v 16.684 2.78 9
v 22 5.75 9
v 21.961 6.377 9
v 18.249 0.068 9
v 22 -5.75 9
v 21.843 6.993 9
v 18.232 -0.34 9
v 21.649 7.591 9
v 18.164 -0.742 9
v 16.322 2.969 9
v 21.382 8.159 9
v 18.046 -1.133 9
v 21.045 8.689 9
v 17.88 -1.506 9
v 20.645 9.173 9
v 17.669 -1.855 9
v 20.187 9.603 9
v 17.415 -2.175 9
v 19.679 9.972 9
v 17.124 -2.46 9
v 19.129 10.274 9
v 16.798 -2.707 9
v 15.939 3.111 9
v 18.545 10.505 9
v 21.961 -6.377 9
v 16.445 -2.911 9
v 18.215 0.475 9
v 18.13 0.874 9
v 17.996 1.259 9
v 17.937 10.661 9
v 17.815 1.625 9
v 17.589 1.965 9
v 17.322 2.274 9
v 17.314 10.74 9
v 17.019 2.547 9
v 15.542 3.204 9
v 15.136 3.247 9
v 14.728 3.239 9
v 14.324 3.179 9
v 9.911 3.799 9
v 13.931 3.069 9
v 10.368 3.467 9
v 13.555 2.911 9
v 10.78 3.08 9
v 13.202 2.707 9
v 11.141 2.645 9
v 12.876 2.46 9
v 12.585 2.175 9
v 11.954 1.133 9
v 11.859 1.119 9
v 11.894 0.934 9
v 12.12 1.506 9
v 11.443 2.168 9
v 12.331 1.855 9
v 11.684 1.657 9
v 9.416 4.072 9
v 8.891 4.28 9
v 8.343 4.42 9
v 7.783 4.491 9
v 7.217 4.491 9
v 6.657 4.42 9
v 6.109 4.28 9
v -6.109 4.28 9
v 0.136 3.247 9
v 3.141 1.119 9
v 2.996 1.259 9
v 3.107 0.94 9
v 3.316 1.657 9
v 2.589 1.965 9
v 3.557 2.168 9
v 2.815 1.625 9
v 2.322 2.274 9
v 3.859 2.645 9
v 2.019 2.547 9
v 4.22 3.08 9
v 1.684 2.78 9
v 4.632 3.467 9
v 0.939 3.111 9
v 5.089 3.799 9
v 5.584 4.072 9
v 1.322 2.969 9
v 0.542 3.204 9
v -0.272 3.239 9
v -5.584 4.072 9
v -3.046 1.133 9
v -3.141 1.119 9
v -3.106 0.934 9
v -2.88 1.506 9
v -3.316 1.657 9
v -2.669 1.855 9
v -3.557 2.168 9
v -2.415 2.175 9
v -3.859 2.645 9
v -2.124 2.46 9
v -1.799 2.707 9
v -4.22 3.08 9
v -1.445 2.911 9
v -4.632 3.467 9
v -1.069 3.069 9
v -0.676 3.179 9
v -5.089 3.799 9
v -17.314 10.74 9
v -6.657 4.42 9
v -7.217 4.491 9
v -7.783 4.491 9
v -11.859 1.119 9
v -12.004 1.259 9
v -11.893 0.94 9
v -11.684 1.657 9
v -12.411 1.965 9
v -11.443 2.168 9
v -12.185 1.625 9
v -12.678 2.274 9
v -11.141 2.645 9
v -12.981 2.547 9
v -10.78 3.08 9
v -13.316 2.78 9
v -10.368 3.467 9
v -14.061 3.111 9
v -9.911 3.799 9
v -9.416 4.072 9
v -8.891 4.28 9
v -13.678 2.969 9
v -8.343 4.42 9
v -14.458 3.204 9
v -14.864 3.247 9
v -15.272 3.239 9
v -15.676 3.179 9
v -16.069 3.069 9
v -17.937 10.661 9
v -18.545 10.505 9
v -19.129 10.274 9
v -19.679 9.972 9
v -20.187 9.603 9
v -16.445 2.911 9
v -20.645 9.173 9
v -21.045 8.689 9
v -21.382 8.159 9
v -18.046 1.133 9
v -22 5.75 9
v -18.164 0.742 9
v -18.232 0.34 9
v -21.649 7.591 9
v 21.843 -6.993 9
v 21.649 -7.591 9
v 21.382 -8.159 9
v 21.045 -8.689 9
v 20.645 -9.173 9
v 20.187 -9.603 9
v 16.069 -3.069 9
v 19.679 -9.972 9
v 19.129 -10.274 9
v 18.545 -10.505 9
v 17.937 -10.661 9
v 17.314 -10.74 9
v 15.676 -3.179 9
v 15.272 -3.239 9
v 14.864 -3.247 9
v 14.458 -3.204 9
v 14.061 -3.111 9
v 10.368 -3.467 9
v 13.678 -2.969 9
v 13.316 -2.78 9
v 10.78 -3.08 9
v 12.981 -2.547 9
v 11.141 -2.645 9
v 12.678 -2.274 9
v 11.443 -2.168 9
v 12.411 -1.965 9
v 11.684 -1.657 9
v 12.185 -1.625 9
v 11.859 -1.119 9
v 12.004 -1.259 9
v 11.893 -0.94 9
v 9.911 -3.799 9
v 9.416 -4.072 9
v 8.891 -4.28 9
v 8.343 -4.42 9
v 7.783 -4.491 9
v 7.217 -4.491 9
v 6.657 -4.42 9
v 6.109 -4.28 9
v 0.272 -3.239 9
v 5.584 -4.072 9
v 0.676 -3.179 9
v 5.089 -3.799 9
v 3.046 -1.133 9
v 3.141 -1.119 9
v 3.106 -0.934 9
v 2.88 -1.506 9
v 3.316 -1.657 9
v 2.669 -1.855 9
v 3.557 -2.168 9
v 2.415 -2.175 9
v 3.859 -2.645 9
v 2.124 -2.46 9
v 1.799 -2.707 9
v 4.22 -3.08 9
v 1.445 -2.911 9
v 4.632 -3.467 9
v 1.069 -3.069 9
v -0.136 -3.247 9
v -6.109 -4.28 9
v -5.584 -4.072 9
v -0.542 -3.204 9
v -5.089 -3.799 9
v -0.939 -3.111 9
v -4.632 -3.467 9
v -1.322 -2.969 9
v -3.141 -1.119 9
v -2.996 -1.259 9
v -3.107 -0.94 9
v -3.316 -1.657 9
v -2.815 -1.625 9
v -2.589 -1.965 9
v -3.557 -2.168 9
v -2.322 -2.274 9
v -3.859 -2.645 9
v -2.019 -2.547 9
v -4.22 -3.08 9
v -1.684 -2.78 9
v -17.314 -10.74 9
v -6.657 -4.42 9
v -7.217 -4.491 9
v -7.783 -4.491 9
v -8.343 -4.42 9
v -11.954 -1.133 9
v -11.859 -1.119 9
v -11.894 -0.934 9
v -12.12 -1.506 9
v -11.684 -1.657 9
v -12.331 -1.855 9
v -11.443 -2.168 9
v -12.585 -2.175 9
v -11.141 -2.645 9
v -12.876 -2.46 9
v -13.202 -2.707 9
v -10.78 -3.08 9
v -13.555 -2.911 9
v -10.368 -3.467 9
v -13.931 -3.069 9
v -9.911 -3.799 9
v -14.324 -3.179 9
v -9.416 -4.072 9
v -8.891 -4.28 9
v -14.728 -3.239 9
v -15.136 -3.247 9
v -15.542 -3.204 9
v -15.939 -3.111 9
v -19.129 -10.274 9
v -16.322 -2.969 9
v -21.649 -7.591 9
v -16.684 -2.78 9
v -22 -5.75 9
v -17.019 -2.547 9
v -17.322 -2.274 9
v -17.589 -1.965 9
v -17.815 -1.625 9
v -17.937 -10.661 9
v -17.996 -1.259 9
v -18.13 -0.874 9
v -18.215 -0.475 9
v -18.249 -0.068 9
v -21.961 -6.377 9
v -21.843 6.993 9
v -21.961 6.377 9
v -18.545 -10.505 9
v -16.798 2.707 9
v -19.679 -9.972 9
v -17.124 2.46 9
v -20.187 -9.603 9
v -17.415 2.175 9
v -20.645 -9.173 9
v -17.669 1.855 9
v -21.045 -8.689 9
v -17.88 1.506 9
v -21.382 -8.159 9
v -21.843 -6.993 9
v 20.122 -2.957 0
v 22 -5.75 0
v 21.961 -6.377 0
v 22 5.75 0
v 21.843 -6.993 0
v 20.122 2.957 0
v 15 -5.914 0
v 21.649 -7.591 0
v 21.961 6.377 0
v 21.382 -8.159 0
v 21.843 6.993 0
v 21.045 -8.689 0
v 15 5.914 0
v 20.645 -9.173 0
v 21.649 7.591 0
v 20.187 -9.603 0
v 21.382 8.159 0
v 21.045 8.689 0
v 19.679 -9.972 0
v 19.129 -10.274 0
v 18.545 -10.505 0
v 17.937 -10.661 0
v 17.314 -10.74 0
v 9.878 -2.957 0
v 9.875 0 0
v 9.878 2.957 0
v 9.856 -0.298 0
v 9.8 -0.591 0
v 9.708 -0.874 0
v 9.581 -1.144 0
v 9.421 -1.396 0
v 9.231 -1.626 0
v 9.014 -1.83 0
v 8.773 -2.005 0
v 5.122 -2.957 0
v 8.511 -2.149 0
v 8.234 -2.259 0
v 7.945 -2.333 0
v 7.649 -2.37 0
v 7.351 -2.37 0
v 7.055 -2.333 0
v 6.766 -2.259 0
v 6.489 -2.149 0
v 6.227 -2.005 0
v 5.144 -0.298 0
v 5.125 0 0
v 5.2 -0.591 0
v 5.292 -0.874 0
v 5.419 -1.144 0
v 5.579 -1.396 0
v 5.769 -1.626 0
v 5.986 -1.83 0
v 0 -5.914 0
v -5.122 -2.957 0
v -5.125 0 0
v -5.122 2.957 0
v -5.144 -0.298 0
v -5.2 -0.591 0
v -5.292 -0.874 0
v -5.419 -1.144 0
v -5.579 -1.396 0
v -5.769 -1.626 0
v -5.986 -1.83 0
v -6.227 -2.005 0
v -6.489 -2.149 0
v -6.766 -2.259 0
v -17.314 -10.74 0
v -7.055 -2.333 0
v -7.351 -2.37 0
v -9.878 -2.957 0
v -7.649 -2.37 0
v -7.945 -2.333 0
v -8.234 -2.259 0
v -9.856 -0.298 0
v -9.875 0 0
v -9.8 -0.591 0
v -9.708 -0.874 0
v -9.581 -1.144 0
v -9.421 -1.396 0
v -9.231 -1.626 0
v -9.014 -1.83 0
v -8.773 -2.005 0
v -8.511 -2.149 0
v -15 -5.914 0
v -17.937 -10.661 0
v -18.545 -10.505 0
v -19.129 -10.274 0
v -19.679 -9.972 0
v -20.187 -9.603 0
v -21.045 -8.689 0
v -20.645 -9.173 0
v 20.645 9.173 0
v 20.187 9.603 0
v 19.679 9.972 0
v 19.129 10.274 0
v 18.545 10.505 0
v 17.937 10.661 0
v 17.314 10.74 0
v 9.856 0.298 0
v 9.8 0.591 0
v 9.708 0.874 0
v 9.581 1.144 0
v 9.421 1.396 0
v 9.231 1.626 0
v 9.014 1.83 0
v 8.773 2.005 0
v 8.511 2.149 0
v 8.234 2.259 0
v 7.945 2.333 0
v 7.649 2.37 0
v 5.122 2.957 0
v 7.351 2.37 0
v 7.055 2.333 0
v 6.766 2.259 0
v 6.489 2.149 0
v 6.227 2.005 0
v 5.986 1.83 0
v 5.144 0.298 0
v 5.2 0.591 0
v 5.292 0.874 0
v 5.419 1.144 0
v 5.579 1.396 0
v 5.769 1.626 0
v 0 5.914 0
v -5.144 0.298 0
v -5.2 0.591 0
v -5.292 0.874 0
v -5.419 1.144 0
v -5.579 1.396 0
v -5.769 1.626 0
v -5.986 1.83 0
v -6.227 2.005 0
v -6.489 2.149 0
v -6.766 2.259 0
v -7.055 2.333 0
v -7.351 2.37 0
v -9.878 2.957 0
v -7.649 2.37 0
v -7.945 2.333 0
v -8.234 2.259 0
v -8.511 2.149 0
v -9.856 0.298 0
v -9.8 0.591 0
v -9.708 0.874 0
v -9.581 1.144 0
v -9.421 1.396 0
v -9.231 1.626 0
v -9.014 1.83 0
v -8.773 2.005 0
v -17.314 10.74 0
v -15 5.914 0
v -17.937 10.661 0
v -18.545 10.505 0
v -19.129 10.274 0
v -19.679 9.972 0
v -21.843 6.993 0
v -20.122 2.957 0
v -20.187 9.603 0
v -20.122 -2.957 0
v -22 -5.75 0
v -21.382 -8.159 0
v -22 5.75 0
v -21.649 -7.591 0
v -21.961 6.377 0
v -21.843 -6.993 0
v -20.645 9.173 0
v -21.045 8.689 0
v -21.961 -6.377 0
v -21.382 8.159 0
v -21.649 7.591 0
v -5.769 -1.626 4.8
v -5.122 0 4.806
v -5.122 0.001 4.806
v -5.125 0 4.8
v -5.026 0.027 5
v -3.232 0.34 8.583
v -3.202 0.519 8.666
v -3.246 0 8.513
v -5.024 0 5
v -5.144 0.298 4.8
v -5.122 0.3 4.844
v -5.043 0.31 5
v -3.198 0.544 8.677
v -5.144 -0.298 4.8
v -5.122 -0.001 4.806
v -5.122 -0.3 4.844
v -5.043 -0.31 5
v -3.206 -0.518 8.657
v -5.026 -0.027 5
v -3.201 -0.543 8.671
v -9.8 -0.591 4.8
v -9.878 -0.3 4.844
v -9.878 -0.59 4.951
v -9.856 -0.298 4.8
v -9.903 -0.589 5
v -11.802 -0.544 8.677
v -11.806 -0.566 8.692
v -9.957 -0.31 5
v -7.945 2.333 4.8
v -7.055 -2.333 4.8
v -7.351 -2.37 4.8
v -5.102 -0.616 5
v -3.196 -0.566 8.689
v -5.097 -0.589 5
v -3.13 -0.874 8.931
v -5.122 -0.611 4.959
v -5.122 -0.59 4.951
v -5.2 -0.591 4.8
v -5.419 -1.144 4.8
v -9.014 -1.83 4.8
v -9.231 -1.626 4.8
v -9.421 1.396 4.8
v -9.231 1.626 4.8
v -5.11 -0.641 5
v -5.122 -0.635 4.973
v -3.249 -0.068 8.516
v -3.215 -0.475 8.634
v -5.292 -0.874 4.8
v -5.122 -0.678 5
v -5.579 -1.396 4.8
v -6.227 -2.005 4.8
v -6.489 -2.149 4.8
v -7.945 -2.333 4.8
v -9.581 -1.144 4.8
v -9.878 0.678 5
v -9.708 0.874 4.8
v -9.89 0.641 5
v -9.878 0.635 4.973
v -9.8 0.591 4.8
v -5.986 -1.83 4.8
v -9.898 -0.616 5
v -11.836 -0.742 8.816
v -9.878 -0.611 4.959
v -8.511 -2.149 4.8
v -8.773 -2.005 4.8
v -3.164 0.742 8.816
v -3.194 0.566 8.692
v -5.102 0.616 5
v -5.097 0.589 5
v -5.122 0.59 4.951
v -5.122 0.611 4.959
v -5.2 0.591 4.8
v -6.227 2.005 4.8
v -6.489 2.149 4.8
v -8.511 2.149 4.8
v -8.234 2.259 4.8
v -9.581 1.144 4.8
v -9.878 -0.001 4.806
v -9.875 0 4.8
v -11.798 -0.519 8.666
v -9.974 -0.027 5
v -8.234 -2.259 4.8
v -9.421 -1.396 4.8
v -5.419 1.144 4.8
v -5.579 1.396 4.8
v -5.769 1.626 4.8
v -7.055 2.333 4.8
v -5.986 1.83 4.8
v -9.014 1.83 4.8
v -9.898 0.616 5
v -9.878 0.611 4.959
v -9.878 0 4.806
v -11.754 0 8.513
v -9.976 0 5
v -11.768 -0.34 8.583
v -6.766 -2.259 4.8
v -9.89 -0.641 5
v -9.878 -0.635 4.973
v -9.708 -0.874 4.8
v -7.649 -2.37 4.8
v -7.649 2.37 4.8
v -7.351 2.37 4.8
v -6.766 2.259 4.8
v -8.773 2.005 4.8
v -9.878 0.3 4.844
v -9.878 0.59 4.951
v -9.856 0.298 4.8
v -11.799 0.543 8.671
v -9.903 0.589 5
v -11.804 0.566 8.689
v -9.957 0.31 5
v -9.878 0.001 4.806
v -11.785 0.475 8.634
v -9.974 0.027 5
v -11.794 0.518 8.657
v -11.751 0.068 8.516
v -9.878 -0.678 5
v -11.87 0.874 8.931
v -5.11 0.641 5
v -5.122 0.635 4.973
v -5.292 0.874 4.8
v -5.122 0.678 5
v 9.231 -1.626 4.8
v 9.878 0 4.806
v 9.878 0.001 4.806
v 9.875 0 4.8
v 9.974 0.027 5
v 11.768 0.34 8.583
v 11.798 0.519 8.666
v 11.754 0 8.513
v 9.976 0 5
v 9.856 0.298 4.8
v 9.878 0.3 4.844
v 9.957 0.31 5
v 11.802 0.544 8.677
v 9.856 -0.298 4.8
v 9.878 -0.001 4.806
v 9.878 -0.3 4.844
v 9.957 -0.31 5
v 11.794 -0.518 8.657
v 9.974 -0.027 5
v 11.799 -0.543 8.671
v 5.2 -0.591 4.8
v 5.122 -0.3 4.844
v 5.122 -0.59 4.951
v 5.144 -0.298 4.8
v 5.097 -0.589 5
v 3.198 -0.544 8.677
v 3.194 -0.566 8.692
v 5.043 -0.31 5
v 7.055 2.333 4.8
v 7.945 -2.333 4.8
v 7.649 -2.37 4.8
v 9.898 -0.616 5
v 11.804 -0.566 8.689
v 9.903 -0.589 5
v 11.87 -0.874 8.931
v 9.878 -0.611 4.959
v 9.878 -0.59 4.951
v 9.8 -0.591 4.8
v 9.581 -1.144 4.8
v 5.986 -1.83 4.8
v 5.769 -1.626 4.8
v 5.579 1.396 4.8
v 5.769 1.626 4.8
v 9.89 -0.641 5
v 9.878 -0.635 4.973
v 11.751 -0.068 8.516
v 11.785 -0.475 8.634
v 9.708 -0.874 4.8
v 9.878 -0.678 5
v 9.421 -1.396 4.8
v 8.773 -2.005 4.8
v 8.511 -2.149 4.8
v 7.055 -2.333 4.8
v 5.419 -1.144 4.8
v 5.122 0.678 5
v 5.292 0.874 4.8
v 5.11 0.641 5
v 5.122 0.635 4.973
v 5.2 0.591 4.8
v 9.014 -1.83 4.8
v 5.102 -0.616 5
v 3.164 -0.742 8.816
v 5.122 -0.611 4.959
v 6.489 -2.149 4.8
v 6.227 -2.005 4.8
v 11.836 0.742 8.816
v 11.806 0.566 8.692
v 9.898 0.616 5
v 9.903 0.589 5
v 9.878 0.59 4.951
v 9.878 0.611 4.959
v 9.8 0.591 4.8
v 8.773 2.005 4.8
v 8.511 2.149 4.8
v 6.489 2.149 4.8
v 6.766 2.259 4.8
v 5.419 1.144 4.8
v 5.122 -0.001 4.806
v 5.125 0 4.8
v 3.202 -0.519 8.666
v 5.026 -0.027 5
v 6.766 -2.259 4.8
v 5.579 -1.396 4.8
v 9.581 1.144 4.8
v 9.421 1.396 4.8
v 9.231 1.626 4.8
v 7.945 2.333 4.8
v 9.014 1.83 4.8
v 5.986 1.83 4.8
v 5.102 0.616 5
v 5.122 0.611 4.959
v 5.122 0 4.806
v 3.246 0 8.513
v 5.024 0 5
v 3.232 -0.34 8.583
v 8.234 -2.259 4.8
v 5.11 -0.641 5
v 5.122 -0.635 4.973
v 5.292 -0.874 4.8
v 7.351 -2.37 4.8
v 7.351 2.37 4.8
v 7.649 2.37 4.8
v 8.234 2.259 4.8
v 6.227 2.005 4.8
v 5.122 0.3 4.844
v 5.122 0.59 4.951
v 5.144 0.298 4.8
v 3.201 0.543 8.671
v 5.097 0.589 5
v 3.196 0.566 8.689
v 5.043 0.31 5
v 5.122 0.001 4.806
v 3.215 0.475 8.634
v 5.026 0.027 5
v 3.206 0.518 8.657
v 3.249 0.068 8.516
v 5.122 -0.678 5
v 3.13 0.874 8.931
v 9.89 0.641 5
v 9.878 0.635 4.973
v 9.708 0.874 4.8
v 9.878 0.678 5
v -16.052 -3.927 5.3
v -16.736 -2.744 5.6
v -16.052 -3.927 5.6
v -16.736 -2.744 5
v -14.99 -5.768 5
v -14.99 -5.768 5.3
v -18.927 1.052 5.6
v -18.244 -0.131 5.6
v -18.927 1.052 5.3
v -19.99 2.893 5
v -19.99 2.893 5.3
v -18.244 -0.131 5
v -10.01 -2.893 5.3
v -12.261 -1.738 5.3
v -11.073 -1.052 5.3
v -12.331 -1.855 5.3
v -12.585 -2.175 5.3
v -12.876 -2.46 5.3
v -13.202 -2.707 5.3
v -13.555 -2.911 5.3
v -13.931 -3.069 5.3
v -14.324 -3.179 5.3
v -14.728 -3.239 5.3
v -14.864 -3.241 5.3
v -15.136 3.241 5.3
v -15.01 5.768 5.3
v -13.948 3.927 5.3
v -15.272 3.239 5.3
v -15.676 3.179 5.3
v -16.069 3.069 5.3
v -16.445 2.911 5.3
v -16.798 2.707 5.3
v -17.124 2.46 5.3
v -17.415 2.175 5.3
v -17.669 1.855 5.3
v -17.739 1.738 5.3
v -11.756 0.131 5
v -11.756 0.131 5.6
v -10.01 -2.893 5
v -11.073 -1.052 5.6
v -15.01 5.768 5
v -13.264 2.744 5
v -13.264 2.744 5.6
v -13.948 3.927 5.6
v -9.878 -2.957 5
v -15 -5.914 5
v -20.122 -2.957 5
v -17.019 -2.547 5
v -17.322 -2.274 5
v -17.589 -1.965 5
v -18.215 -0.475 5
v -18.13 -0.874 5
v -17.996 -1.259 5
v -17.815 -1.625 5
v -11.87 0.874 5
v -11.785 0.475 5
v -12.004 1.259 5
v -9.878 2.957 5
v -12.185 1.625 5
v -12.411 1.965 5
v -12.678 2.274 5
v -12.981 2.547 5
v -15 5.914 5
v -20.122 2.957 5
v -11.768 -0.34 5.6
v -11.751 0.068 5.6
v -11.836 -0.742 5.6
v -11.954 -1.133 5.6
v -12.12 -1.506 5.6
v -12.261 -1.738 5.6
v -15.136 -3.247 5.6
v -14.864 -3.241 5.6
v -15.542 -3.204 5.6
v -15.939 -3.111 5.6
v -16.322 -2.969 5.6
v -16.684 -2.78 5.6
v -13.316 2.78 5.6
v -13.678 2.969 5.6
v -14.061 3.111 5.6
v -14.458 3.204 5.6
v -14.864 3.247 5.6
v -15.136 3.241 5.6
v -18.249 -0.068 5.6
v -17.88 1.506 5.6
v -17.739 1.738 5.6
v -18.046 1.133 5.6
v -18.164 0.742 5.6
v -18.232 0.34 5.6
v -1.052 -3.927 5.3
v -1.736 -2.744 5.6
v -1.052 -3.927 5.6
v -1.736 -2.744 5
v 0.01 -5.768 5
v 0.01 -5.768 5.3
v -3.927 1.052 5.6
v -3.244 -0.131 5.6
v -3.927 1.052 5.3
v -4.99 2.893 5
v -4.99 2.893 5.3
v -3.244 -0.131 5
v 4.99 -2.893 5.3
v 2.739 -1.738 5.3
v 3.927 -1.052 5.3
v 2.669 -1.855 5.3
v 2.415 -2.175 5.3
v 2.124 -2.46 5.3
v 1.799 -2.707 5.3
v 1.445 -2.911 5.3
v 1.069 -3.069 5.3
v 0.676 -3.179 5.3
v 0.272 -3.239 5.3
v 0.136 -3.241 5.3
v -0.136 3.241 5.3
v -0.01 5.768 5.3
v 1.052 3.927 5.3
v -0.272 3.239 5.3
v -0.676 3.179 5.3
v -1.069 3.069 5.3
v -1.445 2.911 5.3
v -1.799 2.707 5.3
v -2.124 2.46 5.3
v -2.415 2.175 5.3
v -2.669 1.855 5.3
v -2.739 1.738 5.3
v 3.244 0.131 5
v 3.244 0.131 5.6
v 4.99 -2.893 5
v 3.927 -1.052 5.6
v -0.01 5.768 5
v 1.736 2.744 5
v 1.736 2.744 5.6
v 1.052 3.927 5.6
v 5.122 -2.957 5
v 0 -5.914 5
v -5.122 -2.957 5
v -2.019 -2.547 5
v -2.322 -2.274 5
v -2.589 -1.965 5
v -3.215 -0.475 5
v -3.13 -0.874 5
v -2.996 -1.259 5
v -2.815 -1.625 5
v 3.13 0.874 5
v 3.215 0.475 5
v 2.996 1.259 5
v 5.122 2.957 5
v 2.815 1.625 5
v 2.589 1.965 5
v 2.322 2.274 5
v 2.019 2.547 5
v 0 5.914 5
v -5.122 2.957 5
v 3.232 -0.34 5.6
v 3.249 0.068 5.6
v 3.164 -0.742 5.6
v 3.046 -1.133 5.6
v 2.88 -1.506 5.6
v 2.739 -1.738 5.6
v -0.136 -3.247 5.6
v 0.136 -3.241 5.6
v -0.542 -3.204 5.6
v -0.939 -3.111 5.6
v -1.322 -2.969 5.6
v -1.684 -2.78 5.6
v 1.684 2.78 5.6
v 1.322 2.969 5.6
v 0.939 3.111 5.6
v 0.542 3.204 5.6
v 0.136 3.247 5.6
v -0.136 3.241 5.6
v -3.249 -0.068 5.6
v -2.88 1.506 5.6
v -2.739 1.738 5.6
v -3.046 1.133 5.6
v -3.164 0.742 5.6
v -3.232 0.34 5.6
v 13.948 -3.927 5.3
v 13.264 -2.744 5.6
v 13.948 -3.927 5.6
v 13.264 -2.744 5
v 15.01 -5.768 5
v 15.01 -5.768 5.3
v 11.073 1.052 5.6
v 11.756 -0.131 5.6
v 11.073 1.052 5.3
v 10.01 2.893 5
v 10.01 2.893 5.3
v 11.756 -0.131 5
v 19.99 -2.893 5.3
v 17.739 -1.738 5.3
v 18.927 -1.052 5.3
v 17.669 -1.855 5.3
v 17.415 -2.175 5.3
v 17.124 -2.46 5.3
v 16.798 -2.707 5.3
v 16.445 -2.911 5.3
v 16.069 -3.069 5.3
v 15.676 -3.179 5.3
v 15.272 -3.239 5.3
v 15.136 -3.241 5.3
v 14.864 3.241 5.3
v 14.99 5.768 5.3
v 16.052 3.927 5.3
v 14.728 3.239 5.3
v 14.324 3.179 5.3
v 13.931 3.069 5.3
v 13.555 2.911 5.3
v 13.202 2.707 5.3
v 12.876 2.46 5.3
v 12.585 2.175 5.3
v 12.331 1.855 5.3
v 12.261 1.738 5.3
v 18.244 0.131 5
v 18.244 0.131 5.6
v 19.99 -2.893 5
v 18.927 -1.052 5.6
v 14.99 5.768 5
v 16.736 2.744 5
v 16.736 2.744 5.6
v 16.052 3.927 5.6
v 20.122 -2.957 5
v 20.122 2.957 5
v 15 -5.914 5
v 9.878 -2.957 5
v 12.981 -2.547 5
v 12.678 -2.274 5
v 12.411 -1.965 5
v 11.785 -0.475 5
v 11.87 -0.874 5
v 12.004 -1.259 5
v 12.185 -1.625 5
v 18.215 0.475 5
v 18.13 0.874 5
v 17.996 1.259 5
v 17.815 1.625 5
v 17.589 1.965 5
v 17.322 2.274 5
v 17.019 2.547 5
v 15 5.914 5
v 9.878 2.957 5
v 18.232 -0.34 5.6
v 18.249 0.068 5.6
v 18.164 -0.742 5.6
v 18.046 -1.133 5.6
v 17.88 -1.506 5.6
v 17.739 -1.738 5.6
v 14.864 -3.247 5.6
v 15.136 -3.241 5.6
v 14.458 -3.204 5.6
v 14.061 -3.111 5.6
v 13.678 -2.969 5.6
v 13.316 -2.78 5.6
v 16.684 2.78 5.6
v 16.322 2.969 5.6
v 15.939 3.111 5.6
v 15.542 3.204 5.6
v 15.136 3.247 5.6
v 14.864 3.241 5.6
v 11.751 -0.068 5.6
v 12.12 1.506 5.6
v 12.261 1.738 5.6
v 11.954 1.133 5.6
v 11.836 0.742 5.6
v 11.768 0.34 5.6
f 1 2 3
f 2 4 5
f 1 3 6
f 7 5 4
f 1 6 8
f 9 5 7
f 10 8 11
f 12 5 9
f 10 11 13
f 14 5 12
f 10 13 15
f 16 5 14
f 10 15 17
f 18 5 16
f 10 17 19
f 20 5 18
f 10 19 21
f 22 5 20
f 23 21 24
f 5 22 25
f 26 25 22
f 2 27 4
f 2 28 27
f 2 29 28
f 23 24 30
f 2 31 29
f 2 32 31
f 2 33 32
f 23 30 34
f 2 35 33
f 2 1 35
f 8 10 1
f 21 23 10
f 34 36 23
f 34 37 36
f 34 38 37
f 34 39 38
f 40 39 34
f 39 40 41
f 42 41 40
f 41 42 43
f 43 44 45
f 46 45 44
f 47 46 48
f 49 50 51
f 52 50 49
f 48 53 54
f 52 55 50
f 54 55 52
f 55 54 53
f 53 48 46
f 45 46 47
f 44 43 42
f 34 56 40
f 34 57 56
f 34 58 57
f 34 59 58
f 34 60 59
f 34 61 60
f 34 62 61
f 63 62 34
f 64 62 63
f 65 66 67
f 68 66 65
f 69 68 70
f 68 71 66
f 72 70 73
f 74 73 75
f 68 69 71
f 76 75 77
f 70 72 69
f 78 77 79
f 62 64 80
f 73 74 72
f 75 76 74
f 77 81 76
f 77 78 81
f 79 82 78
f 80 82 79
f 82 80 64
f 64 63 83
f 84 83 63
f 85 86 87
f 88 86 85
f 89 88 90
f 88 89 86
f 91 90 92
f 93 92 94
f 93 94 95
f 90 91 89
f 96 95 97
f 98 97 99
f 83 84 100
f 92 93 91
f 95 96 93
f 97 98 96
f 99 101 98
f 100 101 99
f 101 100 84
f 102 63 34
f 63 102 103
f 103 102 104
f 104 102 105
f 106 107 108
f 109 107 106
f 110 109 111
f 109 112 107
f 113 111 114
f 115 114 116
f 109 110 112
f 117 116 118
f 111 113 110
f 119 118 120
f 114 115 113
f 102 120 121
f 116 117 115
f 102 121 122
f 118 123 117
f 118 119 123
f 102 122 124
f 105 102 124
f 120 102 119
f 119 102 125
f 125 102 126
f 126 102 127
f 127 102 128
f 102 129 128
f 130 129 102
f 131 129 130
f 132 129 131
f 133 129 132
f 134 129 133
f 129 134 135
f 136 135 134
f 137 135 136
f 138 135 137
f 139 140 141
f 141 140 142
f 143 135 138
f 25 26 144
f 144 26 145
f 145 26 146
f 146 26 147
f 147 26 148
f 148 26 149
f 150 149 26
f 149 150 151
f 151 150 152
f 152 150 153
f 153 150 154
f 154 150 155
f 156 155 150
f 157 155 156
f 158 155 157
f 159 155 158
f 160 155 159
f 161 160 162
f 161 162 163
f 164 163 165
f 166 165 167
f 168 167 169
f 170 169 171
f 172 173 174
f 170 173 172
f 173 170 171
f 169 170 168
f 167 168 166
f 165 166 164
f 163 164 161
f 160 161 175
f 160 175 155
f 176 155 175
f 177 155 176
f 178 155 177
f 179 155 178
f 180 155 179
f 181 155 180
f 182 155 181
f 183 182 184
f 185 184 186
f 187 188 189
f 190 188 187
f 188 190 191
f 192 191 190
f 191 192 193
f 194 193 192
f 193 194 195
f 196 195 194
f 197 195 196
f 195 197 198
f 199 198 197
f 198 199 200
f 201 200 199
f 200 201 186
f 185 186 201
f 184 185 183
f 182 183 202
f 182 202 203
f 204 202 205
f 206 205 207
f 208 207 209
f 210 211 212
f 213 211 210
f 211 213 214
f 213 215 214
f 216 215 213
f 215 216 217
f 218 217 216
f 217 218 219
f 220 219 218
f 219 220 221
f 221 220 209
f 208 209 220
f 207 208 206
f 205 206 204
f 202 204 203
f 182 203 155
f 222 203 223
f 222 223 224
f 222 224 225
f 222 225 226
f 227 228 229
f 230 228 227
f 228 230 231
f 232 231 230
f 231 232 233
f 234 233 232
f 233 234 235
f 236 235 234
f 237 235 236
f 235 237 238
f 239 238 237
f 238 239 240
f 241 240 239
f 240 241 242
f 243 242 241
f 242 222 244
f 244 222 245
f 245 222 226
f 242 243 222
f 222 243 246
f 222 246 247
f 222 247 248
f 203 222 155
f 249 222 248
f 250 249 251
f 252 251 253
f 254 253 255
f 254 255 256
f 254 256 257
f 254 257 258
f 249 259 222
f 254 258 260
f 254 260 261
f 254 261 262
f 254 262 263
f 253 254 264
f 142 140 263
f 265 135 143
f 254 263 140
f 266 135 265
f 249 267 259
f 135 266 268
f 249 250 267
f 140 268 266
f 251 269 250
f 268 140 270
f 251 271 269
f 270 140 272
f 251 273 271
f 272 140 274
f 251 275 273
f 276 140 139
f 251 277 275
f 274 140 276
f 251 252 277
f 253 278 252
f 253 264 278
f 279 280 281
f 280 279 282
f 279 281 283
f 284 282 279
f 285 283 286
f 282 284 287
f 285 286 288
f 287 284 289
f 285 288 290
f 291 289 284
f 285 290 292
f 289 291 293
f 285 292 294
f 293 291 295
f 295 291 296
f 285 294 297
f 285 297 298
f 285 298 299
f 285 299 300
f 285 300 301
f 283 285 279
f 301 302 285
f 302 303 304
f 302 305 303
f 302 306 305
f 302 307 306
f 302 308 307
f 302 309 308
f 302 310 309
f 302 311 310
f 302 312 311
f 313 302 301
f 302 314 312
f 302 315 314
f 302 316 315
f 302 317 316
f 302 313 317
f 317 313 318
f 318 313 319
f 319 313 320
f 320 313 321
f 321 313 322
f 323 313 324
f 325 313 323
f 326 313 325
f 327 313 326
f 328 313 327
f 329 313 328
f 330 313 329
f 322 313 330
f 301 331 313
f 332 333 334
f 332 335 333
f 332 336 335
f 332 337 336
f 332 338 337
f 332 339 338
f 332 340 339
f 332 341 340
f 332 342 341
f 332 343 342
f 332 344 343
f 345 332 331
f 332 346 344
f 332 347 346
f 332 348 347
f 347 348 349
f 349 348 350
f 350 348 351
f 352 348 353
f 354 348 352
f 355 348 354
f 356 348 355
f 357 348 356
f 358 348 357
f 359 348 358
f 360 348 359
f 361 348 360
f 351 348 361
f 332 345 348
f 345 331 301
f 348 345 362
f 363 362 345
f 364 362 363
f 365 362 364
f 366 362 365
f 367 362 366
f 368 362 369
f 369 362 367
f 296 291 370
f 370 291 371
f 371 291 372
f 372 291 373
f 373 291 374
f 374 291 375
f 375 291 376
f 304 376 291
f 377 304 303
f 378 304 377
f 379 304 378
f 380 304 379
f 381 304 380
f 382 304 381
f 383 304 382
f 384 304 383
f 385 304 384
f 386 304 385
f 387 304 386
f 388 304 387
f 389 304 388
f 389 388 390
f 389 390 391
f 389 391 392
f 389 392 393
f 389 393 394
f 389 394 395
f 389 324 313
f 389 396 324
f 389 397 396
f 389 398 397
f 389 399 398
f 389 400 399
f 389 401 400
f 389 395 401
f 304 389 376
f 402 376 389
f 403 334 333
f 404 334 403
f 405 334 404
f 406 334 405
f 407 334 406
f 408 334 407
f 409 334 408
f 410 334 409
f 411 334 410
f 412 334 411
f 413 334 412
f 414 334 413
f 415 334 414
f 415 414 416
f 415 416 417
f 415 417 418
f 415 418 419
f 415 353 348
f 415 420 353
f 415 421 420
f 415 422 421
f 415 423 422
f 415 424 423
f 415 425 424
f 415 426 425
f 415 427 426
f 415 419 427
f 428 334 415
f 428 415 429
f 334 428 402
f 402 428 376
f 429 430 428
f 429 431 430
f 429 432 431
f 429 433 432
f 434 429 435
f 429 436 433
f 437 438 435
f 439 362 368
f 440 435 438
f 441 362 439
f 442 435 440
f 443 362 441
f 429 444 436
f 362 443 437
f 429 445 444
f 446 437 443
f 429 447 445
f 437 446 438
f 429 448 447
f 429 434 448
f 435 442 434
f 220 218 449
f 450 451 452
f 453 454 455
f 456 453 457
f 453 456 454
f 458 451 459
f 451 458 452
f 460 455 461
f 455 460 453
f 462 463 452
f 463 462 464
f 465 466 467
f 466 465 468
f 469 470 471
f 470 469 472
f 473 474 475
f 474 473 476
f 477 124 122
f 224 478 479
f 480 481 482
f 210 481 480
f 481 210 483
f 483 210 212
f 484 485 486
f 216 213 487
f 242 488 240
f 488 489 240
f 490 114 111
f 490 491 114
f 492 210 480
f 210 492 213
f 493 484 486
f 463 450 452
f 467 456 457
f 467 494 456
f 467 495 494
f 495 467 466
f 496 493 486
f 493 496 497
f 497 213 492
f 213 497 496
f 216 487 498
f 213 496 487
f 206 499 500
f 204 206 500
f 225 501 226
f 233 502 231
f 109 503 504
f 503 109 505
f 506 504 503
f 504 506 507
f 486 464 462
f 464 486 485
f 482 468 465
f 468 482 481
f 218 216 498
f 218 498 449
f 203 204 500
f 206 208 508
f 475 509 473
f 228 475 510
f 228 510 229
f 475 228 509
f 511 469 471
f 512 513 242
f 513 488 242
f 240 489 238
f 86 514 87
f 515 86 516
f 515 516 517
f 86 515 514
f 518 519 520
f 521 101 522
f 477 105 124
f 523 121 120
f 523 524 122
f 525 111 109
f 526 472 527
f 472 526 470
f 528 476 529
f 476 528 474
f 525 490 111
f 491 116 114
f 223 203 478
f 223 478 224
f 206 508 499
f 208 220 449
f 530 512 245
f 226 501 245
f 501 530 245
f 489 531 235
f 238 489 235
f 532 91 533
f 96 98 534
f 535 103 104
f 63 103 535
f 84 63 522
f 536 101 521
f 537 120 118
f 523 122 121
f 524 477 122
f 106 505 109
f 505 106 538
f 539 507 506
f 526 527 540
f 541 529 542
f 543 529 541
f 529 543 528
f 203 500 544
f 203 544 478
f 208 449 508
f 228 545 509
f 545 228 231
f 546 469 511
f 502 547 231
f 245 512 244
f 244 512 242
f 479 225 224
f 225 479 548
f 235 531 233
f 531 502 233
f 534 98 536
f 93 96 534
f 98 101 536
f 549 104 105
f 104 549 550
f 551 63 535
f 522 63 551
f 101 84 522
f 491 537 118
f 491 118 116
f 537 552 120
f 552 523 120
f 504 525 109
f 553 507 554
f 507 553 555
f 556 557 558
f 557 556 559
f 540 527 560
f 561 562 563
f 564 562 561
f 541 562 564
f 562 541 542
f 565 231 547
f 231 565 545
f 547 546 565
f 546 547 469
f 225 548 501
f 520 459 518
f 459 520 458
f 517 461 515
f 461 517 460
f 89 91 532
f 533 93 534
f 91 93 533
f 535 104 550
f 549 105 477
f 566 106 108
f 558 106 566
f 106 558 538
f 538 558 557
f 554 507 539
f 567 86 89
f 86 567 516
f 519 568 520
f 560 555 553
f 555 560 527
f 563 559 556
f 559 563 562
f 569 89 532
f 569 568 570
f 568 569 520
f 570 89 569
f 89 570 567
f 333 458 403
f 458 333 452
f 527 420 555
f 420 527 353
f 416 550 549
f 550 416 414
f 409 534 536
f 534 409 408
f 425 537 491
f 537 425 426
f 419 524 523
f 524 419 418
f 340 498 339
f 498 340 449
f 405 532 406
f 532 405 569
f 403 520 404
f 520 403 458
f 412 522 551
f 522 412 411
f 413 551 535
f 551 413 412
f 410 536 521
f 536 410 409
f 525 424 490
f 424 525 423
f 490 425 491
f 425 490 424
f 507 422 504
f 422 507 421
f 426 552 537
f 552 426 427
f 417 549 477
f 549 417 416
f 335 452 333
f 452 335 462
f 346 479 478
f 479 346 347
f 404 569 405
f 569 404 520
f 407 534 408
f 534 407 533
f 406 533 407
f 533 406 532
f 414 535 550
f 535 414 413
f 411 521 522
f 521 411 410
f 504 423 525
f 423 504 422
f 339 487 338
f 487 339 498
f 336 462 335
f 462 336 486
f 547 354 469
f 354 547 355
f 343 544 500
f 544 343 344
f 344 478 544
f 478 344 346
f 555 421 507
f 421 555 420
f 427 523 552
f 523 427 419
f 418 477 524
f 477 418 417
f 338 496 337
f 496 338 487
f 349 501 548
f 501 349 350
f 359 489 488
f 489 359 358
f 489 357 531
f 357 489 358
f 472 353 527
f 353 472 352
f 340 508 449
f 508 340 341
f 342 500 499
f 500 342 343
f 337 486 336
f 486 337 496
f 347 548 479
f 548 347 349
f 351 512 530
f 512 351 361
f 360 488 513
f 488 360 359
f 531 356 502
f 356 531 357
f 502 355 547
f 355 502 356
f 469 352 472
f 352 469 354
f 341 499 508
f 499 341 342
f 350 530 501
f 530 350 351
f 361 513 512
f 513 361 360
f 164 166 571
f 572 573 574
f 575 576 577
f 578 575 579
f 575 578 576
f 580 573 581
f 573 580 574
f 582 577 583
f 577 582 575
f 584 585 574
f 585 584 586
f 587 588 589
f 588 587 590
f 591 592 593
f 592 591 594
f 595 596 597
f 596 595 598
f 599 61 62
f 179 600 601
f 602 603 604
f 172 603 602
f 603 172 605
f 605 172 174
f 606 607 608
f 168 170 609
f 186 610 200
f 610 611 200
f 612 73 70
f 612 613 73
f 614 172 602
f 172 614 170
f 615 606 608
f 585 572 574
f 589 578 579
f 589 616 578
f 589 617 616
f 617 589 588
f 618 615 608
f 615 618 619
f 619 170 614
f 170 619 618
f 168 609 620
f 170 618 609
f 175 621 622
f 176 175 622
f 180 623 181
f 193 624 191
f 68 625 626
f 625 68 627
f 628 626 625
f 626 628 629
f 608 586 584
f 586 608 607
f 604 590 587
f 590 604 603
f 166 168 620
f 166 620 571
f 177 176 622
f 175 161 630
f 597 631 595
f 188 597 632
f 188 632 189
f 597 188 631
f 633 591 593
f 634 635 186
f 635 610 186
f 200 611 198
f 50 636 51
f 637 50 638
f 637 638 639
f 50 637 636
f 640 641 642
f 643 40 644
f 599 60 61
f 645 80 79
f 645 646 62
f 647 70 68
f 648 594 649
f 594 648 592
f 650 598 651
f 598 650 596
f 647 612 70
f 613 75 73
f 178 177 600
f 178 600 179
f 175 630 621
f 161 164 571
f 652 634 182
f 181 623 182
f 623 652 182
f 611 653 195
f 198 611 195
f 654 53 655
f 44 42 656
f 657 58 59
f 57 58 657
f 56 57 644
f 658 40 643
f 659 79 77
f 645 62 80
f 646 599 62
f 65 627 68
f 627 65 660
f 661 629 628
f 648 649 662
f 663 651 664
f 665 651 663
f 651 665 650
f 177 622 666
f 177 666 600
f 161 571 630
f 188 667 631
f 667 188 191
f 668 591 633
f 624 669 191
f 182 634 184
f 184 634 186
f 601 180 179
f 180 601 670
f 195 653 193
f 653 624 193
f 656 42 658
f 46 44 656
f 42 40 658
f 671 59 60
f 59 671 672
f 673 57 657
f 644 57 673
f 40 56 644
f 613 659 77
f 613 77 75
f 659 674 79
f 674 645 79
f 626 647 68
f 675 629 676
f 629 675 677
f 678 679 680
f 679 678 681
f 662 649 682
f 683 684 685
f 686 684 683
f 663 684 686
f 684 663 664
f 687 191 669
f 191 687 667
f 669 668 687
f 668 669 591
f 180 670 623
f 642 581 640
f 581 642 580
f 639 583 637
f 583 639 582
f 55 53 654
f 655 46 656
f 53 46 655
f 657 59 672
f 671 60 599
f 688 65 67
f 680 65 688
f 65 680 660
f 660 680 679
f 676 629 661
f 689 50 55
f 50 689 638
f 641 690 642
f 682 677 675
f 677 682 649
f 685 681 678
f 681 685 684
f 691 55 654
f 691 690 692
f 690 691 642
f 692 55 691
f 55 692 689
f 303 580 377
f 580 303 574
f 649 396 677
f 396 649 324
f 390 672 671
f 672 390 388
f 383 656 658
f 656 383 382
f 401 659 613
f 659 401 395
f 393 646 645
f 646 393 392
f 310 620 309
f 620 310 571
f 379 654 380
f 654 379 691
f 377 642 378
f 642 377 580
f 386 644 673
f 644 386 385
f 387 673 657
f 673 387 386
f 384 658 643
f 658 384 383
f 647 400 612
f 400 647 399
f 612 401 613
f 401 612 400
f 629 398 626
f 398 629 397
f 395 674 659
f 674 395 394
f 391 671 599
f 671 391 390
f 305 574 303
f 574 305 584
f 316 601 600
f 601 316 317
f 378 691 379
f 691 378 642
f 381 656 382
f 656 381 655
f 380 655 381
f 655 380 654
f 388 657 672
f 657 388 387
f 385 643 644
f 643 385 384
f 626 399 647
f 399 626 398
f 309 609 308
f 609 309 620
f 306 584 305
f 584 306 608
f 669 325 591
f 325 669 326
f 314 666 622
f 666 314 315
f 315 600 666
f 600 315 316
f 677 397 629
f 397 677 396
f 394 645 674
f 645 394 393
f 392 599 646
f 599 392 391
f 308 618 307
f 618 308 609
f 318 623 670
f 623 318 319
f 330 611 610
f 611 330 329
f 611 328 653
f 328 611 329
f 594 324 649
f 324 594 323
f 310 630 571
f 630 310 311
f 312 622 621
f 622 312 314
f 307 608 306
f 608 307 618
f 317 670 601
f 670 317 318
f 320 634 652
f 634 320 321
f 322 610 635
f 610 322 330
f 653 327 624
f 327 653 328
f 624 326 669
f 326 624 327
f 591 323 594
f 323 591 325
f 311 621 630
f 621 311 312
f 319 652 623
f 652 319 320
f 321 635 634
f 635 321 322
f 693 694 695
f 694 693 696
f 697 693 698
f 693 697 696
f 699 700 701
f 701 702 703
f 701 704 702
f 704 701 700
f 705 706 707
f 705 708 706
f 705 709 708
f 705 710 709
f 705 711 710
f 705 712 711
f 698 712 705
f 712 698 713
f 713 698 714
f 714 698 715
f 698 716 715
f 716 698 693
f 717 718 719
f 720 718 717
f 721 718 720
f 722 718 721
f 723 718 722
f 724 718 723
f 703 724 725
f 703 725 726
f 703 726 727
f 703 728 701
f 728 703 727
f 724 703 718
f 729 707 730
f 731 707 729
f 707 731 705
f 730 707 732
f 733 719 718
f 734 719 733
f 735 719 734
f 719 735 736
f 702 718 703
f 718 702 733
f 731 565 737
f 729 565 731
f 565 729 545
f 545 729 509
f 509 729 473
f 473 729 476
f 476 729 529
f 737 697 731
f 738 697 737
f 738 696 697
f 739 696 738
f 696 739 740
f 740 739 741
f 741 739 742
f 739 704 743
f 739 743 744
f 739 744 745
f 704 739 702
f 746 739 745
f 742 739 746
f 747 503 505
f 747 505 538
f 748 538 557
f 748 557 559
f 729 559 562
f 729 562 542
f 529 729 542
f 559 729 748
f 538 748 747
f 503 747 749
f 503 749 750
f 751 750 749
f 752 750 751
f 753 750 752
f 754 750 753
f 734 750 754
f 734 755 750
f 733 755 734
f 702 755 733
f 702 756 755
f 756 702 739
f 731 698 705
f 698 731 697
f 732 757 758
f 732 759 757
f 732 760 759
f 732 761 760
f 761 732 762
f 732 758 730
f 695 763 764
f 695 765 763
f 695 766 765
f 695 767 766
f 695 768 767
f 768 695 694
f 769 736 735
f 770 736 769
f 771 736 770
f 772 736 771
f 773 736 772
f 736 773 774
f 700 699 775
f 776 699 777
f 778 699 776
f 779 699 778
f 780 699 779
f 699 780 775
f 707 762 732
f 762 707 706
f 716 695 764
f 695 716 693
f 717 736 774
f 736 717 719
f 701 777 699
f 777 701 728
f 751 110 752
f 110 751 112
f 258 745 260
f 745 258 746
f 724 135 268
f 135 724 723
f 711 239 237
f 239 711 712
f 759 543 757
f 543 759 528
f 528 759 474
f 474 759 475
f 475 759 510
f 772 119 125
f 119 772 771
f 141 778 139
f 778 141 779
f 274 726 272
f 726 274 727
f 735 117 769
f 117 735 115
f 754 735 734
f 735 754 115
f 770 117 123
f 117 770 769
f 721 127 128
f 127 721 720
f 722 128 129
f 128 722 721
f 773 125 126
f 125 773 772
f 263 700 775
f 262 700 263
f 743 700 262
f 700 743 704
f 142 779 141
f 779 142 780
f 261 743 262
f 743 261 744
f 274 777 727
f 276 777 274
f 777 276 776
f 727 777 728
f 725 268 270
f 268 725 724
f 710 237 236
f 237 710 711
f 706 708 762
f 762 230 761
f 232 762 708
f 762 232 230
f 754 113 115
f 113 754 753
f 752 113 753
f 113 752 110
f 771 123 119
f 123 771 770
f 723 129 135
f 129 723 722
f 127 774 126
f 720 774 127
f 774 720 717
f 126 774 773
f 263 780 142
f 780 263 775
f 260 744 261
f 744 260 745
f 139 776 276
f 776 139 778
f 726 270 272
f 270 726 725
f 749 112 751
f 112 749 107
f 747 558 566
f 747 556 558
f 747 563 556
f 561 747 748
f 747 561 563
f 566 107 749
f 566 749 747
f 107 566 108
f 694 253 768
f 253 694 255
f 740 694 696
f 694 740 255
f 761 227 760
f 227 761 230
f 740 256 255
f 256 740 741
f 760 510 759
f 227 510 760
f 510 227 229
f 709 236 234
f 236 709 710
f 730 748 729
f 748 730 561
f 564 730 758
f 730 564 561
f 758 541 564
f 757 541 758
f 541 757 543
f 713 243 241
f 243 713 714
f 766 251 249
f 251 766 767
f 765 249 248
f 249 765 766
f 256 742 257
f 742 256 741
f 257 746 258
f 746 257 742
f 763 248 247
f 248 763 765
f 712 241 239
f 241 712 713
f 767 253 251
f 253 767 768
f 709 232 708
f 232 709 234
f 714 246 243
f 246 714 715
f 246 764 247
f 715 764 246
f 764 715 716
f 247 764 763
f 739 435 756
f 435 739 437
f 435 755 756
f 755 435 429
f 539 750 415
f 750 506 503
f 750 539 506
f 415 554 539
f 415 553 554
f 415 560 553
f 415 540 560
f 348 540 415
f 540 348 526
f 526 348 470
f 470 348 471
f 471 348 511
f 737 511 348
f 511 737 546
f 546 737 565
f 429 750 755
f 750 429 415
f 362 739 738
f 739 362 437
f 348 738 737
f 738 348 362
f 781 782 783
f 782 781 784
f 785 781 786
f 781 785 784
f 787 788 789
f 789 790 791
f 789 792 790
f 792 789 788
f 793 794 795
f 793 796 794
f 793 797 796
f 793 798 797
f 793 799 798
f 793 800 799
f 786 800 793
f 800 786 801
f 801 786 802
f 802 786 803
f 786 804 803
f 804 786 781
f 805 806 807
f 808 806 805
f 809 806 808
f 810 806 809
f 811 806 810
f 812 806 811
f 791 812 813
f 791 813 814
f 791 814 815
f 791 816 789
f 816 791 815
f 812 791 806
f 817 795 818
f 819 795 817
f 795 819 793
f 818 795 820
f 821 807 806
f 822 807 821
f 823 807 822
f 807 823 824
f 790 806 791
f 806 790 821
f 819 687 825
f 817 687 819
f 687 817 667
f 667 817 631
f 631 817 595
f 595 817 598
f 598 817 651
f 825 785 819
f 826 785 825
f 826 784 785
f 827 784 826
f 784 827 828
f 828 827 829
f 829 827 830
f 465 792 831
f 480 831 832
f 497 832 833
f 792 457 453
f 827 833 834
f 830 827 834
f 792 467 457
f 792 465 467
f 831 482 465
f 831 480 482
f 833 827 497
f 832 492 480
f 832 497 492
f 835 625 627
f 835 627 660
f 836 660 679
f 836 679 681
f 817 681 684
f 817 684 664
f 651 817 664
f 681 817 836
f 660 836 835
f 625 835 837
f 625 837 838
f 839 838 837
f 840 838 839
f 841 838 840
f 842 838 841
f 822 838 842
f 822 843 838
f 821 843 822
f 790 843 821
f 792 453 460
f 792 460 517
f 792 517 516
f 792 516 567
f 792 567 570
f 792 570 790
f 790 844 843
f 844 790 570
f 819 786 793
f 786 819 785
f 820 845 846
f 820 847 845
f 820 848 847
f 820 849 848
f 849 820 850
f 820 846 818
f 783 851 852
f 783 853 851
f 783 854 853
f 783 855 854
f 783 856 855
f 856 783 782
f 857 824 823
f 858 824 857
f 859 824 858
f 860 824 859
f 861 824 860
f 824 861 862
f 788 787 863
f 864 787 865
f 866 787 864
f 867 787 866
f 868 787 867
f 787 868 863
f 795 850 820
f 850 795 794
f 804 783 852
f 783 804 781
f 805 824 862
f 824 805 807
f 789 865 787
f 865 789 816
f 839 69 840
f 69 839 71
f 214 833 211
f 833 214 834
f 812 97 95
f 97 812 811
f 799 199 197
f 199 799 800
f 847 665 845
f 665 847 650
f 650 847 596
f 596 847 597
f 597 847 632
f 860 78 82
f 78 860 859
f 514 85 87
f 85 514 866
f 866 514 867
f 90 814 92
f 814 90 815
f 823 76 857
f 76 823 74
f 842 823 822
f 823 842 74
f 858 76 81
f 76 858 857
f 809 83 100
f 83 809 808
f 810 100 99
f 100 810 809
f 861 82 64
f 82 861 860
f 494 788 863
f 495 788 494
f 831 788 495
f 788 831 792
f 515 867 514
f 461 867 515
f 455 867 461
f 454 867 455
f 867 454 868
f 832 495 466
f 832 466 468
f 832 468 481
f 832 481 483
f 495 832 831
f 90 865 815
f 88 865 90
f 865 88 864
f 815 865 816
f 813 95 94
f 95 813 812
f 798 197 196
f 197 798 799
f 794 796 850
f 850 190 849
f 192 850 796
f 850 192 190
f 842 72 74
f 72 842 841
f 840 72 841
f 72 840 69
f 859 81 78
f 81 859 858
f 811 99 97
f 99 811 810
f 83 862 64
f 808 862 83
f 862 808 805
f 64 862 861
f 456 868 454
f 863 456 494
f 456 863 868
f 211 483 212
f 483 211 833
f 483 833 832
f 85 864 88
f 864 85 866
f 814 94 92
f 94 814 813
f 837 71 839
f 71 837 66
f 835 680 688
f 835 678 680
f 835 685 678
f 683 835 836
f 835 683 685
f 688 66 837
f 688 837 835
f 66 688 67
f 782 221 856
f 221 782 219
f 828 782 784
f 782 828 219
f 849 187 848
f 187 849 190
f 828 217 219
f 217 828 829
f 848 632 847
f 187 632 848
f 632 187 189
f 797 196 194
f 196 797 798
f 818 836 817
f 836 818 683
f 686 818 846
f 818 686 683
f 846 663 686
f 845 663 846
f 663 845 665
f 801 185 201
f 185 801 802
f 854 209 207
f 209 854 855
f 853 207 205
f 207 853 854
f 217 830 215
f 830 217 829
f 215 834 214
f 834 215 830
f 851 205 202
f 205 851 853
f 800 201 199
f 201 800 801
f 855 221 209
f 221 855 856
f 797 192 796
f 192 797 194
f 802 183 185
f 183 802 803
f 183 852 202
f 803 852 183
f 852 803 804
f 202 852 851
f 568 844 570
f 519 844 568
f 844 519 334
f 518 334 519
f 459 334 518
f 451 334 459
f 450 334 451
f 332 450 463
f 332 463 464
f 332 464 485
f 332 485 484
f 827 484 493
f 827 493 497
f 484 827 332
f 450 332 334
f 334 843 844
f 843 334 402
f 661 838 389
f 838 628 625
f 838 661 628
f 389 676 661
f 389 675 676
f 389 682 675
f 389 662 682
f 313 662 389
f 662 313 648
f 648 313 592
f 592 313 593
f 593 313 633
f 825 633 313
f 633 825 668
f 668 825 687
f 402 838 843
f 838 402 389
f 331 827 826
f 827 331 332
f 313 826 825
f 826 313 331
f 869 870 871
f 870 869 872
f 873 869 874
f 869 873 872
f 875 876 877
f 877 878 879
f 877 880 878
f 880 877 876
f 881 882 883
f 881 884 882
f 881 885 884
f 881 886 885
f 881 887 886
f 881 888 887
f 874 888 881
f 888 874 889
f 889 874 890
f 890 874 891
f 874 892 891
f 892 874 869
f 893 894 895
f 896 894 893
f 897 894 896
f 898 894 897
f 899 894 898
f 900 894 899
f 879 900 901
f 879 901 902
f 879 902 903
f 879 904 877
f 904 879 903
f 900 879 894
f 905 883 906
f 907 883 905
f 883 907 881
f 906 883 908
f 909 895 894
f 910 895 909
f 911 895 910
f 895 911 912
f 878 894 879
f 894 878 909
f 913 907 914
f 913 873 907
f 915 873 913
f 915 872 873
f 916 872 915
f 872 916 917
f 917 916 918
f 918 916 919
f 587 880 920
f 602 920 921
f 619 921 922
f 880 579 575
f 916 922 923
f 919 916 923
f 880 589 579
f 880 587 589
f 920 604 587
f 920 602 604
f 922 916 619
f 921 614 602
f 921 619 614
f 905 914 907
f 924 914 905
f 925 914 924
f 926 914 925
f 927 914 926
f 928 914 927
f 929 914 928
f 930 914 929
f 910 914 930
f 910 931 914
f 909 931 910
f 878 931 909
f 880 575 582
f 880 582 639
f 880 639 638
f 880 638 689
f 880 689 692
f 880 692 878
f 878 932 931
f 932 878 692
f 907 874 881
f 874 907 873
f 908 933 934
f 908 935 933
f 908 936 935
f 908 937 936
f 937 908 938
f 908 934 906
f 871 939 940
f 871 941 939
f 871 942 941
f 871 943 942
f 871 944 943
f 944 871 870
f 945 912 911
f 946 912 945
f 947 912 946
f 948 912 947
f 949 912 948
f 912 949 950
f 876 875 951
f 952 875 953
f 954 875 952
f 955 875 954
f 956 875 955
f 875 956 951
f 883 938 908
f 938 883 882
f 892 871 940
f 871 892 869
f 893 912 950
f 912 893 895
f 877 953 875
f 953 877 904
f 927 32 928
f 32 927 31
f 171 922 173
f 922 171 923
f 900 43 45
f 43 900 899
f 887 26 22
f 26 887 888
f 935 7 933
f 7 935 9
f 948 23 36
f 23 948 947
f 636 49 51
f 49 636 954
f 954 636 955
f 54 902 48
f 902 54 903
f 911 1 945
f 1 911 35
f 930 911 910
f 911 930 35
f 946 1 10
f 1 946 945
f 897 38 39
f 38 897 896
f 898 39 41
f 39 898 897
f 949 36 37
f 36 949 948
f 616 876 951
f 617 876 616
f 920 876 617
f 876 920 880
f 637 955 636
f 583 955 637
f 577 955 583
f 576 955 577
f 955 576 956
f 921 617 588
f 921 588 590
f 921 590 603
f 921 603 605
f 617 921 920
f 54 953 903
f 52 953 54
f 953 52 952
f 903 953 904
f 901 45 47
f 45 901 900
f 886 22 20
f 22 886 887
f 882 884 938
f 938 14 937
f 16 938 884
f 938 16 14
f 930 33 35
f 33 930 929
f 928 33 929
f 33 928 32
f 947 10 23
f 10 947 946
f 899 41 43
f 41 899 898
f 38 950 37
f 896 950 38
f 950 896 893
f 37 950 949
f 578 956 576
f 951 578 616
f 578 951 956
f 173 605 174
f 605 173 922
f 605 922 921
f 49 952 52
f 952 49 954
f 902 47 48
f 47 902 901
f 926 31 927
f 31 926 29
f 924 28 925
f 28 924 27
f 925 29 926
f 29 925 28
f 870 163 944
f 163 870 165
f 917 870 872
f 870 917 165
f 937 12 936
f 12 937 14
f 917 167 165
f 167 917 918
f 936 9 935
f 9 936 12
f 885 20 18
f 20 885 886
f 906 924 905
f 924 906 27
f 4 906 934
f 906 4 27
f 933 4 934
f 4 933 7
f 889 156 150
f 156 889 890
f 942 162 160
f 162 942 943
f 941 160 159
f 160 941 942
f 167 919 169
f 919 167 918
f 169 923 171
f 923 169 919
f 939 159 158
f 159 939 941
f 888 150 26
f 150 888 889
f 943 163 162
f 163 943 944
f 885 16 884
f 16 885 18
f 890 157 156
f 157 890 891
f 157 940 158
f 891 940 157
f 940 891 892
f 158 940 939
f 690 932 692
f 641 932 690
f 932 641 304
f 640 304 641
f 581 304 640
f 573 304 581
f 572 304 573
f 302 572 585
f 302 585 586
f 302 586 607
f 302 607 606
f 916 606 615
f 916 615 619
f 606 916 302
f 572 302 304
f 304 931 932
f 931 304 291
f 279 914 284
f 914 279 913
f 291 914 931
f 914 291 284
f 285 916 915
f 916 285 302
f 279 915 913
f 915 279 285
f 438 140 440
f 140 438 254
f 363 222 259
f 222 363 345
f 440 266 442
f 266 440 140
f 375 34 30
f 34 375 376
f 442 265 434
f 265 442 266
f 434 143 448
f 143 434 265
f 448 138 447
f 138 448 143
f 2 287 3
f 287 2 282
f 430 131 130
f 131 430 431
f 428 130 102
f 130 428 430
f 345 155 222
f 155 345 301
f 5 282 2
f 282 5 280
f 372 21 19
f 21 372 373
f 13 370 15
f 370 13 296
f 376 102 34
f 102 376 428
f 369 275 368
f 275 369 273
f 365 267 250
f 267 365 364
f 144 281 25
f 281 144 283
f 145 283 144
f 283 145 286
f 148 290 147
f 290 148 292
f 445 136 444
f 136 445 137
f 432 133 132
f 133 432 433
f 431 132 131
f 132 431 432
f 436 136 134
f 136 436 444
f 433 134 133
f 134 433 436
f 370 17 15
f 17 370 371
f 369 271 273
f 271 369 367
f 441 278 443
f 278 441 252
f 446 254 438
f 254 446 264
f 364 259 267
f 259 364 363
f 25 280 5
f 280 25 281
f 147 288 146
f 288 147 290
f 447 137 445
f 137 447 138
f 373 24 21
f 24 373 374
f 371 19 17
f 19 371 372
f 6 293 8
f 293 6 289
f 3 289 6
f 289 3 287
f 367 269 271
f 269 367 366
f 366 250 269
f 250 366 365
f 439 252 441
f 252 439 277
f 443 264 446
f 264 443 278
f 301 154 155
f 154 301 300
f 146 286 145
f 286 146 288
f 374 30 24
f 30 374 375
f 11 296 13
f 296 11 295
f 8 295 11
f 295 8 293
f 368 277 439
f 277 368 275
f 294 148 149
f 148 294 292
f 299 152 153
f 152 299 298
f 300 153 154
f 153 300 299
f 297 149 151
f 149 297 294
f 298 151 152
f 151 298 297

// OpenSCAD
$fn = 50;


difference() {
	union() {
		hull() {
			translate(v = [-17.0000000000, 5.7500000000, 0]) {
				cylinder(h = 9, r = 5);
			}
			translate(v = [17.0000000000, 5.7500000000, 0]) {
				cylinder(h = 9, r = 5);
			}
			translate(v = [-17.0000000000, -5.7500000000, 0]) {
				cylinder(h = 9, r = 5);
			}
			translate(v = [17.0000000000, -5.7500000000, 0]) {
				cylinder(h = 9, r = 5);
			}
		}
	}
	union() {
		translate(v = [-7.5000000000, 0, 9]) {
			rotate(a = [0, 0, 0]) {
				difference() {
					union() {
						#translate(v = [0, 0, -9.0000000000]) {
							cylinder(h = 9, r = 2.2500000000);
						}
						#translate(v = [0, 0, -4.2000000000]) {
							cylinder(h = 4.2000000000, r1 = 2.3750000000, r2 = 4.5000000000);
						}
						#translate(v = [0, 0, -9.0000000000]) {
							cylinder(h = 9, r = 2.3750000000);
						}
						#translate(v = [0, 0, -9.0000000000]) {
							cylinder(h = 9, r = 2.2500000000);
						}
					}
					union();
				}
			}
		}
		translate(v = [7.5000000000, 0, 9]) {
			rotate(a = [0, 0, 0]) {
				difference() {
					union() {
						#translate(v = [0, 0, -9.0000000000]) {
							cylinder(h = 9, r = 2.2500000000);
						}
						#translate(v = [0, 0, -4.2000000000]) {
							cylinder(h = 4.2000000000, r1 = 2.3750000000, r2 = 4.5000000000);
						}
						#translate(v = [0, 0, -9.0000000000]) {
							cylinder(h = 9, r = 2.3750000000);
						}
						#translate(v = [0, 0, -9.0000000000]) {
							cylinder(h = 9, r = 2.2500000000);
						}
					}
					union();
				}
			}
		}
		translate(v = [-15.0000000000, 0, 0]) {
			rotate(a = [0, 0, 30.0000000000]) {
				difference() {
					union() {
						#translate(v = [-2.8750000000, -5.0000000000, -0.3000000000]) {
							cube(size = [5.7500000000, 10, 0.3000000000]);
						}
						#translate(v = [-2.8750000000, -2.8750000000, -0.6000000000]) {
							cube(size = [5.7500000000, 5.7500000000, 0.3000000000]);
						}
						#translate(v = [-2.8750000000, -5.0000000000, 5]) {
							cube(size = [5.7500000000, 10, 0.3000000000]);
						}
						#translate(v = [-2.8750000000, -2.8750000000, 5.3000000000]) {
							cube(size = [5.7500000000, 5.7500000000, 0.3000000000]);
						}
						#translate(v = [0, 0, -100.0000000000]) {
							cylinder(h = 200, r = 3.2500000000);
						}
						#linear_extrude(height = 5) {
							polygon(points = [[5.9142500000, 0.0000000000], [2.9571250000, 5.1218907443], [-2.9571250000, 5.1218907443], [-5.9142500000, 0.0000000000], [-2.9571250000, -5.1218907443], [2.9571250000, -5.1218907443]]);
						}
						#translate(v = [-2.8750000000, -5.0000000000, -0.3000000000]) {
							cube(size = [5.7500000000, 10, 0.3000000000]);
						}
						#translate(v = [-2.8750000000, -2.8750000000, -0.6000000000]) {
							cube(size = [5.7500000000, 5.7500000000, 0.3000000000]);
						}
						#translate(v = [-2.8750000000, -5.0000000000, 5]) {
							cube(size = [5.7500000000, 10, 0.3000000000]);
						}
						#translate(v = [-2.8750000000, -2.8750000000, 5.3000000000]) {
							cube(size = [5.7500000000, 5.7500000000, 0.3000000000]);
						}
						#translate(v = [0, 0, -100.0000000000]) {
							cylinder(h = 200, r = 3.2500000000);
						}
						#translate(v = [-2.8750000000, -5.0000000000, -0.3000000000]) {
							cube(size = [5.7500000000, 10, 0.3000000000]);
						}
						#translate(v = [-2.8750000000, -2.8750000000, -0.6000000000]) {
							cube(size = [5.7500000000, 5.7500000000, 0.3000000000]);
						}
						#translate(v = [-2.8750000000, -5.0000000000, 5]) {
							cube(size = [5.7500000000, 10, 0.3000000000]);
						}
						#translate(v = [-2.8750000000, -2.8750000000, 5.3000000000]) {
							cube(size = [5.7500000000, 5.7500000000, 0.3000000000]);
						}
						#translate(v = [0, 0, -100.0000000000]) {
							cylinder(h = 200, r = 3.2500000000);
						}
					}
					union();
				}
			}
		}
		translate(v = [0.0000000000, 0, 0]) {
			rotate(a = [0, 0, 30.0000000000]) {
				difference() {
					union() {
						#translate(v = [-2.8750000000, -5.0000000000, -0.3000000000]) {
							cube(size = [5.7500000000, 10, 0.3000000000]);
						}
						#translate(v = [-2.8750000000, -2.8750000000, -0.6000000000]) {
							cube(size = [5.7500000000, 5.7500000000, 0.3000000000]);
						}
						#translate(v = [-2.8750000000, -5.0000000000, 5]) {
							cube(size = [5.7500000000, 10, 0.3000000000]);
						}
						#translate(v = [-2.8750000000, -2.8750000000, 5.3000000000]) {
							cube(size = [5.7500000000, 5.7500000000, 0.3000000000]);
						}
						#translate(v = [0, 0, -100.0000000000]) {
							cylinder(h = 200, r = 3.2500000000);
						}
						#linear_extrude(height = 5) {
							polygon(points = [[5.9142500000, 0.0000000000], [2.9571250000, 5.1218907443], [-2.9571250000, 5.1218907443], [-5.9142500000, 0.0000000000], [-2.9571250000, -5.1218907443], [2.9571250000, -5.1218907443]]);
						}
						#translate(v = [-2.8750000000, -5.0000000000, -0.3000000000]) {
							cube(size = [5.7500000000, 10, 0.3000000000]);
						}
						#translate(v = [-2.8750000000, -2.8750000000, -0.6000000000]) {
							cube(size = [5.7500000000, 5.7500000000, 0.3000000000]);
						}
						#translate(v = [-2.8750000000, -5.0000000000, 5]) {
							cube(size = [5.7500000000, 10, 0.3000000000]);
						}
						#translate(v = [-2.8750000000, -2.8750000000, 5.3000000000]) {
							cube(size = [5.7500000000, 5.7500000000, 0.3000000000]);
						}
						#translate(v = [0, 0, -100.0000000000]) {
							cylinder(h = 200, r = 3.2500000000);
						}
						#translate(v = [-2.8750000000, -5.0000000000, -0.3000000000]) {
							cube(size = [5.7500000000, 10, 0.3000000000]);
						}
						#translate(v = [-2.8750000000, -2.8750000000, -0.6000000000]) {
							cube(size = [5.7500000000, 5.7500000000, 0.3000000000]);
						}
						#translate(v = [-2.8750000000, -5.0000000000, 5]) {
							cube(size = [5.7500000000, 10, 0.3000000000]);
						}
						#translate(v = [-2.8750000000, -2.8750000000, 5.3000000000]) {
							cube(size = [5.7500000000, 5.7500000000, 0.3000000000]);
						}
						#translate(v = [0, 0, -100.0000000000]) {
							cylinder(h = 200, r = 3.2500000000);
						}
					}
					union();
				}
			}
		}
		translate(v = [15.0000000000, 0, 0]) {
			rotate(a = [0, 0, 30.0000000000]) {
				difference() {
					union() {
						#translate(v = [-2.8750000000, -5.0000000000, -0.3000000000]) {
							cube(size = [5.7500000000, 10, 0.3000000000]);
						}
						#translate(v = [-2.8750000000, -2.8750000000, -0.6000000000]) {
							cube(size = [5.7500000000, 5.7500000000, 0.3000000000]);
						}
						#translate(v = [-2.8750000000, -5.0000000000, 5]) {
							cube(size = [5.7500000000, 10, 0.3000000000]);
						}
						#translate(v = [-2.8750000000, -2.8750000000, 5.3000000000]) {
							cube(size = [5.7500000000, 5.7500000000, 0.3000000000]);
						}
						#translate(v = [0, 0, -100.0000000000]) {
							cylinder(h = 200, r = 3.2500000000);
						}
						#linear_extrude(height = 5) {
							polygon(points = [[5.9142500000, 0.0000000000], [2.9571250000, 5.1218907443], [-2.9571250000, 5.1218907443], [-5.9142500000, 0.0000000000], [-2.9571250000, -5.1218907443], [2.9571250000, -5.1218907443]]);
						}
						#translate(v = [-2.8750000000, -5.0000000000, -0.3000000000]) {
							cube(size = [5.7500000000, 10, 0.3000000000]);
						}
						#translate(v = [-2.8750000000, -2.8750000000, -0.6000000000]) {
							cube(size = [5.7500000000, 5.7500000000, 0.3000000000]);
						}
						#translate(v = [-2.8750000000, -5.0000000000, 5]) {
							cube(size = [5.7500000000, 10, 0.3000000000]);
						}
						#translate(v = [-2.8750000000, -2.8750000000, 5.3000000000]) {
							cube(size = [5.7500000000, 5.7500000000, 0.3000000000]);
						}
						#translate(v = [0, 0, -100.0000000000]) {
							cylinder(h = 200, r = 3.2500000000);
						}
						#translate(v = [-2.8750000000, -5.0000000000, -0.3000000000]) {
							cube(size = [5.7500000000, 10, 0.3000000000]);
						}
						#translate(v = [-2.8750000000, -2.8750000000, -0.6000000000]) {
							cube(size = [5.7500000000, 5.7500000000, 0.3000000000]);
						}
						#translate(v = [-2.8750000000, -5.0000000000, 5]) {
							cube(size = [5.7500000000, 10, 0.3000000000]);
						}
						#translate(v = [-2.8750000000, -2.8750000000, 5.3000000000]) {
							cube(size = [5.7500000000, 5.7500000000, 0.3000000000]);
						}
						#translate(v = [0, 0, -100.0000000000]) {
							cylinder(h = 200, r = 3.2500000000);
						}
					}
					union();
				}
			}
		}
	}
}
